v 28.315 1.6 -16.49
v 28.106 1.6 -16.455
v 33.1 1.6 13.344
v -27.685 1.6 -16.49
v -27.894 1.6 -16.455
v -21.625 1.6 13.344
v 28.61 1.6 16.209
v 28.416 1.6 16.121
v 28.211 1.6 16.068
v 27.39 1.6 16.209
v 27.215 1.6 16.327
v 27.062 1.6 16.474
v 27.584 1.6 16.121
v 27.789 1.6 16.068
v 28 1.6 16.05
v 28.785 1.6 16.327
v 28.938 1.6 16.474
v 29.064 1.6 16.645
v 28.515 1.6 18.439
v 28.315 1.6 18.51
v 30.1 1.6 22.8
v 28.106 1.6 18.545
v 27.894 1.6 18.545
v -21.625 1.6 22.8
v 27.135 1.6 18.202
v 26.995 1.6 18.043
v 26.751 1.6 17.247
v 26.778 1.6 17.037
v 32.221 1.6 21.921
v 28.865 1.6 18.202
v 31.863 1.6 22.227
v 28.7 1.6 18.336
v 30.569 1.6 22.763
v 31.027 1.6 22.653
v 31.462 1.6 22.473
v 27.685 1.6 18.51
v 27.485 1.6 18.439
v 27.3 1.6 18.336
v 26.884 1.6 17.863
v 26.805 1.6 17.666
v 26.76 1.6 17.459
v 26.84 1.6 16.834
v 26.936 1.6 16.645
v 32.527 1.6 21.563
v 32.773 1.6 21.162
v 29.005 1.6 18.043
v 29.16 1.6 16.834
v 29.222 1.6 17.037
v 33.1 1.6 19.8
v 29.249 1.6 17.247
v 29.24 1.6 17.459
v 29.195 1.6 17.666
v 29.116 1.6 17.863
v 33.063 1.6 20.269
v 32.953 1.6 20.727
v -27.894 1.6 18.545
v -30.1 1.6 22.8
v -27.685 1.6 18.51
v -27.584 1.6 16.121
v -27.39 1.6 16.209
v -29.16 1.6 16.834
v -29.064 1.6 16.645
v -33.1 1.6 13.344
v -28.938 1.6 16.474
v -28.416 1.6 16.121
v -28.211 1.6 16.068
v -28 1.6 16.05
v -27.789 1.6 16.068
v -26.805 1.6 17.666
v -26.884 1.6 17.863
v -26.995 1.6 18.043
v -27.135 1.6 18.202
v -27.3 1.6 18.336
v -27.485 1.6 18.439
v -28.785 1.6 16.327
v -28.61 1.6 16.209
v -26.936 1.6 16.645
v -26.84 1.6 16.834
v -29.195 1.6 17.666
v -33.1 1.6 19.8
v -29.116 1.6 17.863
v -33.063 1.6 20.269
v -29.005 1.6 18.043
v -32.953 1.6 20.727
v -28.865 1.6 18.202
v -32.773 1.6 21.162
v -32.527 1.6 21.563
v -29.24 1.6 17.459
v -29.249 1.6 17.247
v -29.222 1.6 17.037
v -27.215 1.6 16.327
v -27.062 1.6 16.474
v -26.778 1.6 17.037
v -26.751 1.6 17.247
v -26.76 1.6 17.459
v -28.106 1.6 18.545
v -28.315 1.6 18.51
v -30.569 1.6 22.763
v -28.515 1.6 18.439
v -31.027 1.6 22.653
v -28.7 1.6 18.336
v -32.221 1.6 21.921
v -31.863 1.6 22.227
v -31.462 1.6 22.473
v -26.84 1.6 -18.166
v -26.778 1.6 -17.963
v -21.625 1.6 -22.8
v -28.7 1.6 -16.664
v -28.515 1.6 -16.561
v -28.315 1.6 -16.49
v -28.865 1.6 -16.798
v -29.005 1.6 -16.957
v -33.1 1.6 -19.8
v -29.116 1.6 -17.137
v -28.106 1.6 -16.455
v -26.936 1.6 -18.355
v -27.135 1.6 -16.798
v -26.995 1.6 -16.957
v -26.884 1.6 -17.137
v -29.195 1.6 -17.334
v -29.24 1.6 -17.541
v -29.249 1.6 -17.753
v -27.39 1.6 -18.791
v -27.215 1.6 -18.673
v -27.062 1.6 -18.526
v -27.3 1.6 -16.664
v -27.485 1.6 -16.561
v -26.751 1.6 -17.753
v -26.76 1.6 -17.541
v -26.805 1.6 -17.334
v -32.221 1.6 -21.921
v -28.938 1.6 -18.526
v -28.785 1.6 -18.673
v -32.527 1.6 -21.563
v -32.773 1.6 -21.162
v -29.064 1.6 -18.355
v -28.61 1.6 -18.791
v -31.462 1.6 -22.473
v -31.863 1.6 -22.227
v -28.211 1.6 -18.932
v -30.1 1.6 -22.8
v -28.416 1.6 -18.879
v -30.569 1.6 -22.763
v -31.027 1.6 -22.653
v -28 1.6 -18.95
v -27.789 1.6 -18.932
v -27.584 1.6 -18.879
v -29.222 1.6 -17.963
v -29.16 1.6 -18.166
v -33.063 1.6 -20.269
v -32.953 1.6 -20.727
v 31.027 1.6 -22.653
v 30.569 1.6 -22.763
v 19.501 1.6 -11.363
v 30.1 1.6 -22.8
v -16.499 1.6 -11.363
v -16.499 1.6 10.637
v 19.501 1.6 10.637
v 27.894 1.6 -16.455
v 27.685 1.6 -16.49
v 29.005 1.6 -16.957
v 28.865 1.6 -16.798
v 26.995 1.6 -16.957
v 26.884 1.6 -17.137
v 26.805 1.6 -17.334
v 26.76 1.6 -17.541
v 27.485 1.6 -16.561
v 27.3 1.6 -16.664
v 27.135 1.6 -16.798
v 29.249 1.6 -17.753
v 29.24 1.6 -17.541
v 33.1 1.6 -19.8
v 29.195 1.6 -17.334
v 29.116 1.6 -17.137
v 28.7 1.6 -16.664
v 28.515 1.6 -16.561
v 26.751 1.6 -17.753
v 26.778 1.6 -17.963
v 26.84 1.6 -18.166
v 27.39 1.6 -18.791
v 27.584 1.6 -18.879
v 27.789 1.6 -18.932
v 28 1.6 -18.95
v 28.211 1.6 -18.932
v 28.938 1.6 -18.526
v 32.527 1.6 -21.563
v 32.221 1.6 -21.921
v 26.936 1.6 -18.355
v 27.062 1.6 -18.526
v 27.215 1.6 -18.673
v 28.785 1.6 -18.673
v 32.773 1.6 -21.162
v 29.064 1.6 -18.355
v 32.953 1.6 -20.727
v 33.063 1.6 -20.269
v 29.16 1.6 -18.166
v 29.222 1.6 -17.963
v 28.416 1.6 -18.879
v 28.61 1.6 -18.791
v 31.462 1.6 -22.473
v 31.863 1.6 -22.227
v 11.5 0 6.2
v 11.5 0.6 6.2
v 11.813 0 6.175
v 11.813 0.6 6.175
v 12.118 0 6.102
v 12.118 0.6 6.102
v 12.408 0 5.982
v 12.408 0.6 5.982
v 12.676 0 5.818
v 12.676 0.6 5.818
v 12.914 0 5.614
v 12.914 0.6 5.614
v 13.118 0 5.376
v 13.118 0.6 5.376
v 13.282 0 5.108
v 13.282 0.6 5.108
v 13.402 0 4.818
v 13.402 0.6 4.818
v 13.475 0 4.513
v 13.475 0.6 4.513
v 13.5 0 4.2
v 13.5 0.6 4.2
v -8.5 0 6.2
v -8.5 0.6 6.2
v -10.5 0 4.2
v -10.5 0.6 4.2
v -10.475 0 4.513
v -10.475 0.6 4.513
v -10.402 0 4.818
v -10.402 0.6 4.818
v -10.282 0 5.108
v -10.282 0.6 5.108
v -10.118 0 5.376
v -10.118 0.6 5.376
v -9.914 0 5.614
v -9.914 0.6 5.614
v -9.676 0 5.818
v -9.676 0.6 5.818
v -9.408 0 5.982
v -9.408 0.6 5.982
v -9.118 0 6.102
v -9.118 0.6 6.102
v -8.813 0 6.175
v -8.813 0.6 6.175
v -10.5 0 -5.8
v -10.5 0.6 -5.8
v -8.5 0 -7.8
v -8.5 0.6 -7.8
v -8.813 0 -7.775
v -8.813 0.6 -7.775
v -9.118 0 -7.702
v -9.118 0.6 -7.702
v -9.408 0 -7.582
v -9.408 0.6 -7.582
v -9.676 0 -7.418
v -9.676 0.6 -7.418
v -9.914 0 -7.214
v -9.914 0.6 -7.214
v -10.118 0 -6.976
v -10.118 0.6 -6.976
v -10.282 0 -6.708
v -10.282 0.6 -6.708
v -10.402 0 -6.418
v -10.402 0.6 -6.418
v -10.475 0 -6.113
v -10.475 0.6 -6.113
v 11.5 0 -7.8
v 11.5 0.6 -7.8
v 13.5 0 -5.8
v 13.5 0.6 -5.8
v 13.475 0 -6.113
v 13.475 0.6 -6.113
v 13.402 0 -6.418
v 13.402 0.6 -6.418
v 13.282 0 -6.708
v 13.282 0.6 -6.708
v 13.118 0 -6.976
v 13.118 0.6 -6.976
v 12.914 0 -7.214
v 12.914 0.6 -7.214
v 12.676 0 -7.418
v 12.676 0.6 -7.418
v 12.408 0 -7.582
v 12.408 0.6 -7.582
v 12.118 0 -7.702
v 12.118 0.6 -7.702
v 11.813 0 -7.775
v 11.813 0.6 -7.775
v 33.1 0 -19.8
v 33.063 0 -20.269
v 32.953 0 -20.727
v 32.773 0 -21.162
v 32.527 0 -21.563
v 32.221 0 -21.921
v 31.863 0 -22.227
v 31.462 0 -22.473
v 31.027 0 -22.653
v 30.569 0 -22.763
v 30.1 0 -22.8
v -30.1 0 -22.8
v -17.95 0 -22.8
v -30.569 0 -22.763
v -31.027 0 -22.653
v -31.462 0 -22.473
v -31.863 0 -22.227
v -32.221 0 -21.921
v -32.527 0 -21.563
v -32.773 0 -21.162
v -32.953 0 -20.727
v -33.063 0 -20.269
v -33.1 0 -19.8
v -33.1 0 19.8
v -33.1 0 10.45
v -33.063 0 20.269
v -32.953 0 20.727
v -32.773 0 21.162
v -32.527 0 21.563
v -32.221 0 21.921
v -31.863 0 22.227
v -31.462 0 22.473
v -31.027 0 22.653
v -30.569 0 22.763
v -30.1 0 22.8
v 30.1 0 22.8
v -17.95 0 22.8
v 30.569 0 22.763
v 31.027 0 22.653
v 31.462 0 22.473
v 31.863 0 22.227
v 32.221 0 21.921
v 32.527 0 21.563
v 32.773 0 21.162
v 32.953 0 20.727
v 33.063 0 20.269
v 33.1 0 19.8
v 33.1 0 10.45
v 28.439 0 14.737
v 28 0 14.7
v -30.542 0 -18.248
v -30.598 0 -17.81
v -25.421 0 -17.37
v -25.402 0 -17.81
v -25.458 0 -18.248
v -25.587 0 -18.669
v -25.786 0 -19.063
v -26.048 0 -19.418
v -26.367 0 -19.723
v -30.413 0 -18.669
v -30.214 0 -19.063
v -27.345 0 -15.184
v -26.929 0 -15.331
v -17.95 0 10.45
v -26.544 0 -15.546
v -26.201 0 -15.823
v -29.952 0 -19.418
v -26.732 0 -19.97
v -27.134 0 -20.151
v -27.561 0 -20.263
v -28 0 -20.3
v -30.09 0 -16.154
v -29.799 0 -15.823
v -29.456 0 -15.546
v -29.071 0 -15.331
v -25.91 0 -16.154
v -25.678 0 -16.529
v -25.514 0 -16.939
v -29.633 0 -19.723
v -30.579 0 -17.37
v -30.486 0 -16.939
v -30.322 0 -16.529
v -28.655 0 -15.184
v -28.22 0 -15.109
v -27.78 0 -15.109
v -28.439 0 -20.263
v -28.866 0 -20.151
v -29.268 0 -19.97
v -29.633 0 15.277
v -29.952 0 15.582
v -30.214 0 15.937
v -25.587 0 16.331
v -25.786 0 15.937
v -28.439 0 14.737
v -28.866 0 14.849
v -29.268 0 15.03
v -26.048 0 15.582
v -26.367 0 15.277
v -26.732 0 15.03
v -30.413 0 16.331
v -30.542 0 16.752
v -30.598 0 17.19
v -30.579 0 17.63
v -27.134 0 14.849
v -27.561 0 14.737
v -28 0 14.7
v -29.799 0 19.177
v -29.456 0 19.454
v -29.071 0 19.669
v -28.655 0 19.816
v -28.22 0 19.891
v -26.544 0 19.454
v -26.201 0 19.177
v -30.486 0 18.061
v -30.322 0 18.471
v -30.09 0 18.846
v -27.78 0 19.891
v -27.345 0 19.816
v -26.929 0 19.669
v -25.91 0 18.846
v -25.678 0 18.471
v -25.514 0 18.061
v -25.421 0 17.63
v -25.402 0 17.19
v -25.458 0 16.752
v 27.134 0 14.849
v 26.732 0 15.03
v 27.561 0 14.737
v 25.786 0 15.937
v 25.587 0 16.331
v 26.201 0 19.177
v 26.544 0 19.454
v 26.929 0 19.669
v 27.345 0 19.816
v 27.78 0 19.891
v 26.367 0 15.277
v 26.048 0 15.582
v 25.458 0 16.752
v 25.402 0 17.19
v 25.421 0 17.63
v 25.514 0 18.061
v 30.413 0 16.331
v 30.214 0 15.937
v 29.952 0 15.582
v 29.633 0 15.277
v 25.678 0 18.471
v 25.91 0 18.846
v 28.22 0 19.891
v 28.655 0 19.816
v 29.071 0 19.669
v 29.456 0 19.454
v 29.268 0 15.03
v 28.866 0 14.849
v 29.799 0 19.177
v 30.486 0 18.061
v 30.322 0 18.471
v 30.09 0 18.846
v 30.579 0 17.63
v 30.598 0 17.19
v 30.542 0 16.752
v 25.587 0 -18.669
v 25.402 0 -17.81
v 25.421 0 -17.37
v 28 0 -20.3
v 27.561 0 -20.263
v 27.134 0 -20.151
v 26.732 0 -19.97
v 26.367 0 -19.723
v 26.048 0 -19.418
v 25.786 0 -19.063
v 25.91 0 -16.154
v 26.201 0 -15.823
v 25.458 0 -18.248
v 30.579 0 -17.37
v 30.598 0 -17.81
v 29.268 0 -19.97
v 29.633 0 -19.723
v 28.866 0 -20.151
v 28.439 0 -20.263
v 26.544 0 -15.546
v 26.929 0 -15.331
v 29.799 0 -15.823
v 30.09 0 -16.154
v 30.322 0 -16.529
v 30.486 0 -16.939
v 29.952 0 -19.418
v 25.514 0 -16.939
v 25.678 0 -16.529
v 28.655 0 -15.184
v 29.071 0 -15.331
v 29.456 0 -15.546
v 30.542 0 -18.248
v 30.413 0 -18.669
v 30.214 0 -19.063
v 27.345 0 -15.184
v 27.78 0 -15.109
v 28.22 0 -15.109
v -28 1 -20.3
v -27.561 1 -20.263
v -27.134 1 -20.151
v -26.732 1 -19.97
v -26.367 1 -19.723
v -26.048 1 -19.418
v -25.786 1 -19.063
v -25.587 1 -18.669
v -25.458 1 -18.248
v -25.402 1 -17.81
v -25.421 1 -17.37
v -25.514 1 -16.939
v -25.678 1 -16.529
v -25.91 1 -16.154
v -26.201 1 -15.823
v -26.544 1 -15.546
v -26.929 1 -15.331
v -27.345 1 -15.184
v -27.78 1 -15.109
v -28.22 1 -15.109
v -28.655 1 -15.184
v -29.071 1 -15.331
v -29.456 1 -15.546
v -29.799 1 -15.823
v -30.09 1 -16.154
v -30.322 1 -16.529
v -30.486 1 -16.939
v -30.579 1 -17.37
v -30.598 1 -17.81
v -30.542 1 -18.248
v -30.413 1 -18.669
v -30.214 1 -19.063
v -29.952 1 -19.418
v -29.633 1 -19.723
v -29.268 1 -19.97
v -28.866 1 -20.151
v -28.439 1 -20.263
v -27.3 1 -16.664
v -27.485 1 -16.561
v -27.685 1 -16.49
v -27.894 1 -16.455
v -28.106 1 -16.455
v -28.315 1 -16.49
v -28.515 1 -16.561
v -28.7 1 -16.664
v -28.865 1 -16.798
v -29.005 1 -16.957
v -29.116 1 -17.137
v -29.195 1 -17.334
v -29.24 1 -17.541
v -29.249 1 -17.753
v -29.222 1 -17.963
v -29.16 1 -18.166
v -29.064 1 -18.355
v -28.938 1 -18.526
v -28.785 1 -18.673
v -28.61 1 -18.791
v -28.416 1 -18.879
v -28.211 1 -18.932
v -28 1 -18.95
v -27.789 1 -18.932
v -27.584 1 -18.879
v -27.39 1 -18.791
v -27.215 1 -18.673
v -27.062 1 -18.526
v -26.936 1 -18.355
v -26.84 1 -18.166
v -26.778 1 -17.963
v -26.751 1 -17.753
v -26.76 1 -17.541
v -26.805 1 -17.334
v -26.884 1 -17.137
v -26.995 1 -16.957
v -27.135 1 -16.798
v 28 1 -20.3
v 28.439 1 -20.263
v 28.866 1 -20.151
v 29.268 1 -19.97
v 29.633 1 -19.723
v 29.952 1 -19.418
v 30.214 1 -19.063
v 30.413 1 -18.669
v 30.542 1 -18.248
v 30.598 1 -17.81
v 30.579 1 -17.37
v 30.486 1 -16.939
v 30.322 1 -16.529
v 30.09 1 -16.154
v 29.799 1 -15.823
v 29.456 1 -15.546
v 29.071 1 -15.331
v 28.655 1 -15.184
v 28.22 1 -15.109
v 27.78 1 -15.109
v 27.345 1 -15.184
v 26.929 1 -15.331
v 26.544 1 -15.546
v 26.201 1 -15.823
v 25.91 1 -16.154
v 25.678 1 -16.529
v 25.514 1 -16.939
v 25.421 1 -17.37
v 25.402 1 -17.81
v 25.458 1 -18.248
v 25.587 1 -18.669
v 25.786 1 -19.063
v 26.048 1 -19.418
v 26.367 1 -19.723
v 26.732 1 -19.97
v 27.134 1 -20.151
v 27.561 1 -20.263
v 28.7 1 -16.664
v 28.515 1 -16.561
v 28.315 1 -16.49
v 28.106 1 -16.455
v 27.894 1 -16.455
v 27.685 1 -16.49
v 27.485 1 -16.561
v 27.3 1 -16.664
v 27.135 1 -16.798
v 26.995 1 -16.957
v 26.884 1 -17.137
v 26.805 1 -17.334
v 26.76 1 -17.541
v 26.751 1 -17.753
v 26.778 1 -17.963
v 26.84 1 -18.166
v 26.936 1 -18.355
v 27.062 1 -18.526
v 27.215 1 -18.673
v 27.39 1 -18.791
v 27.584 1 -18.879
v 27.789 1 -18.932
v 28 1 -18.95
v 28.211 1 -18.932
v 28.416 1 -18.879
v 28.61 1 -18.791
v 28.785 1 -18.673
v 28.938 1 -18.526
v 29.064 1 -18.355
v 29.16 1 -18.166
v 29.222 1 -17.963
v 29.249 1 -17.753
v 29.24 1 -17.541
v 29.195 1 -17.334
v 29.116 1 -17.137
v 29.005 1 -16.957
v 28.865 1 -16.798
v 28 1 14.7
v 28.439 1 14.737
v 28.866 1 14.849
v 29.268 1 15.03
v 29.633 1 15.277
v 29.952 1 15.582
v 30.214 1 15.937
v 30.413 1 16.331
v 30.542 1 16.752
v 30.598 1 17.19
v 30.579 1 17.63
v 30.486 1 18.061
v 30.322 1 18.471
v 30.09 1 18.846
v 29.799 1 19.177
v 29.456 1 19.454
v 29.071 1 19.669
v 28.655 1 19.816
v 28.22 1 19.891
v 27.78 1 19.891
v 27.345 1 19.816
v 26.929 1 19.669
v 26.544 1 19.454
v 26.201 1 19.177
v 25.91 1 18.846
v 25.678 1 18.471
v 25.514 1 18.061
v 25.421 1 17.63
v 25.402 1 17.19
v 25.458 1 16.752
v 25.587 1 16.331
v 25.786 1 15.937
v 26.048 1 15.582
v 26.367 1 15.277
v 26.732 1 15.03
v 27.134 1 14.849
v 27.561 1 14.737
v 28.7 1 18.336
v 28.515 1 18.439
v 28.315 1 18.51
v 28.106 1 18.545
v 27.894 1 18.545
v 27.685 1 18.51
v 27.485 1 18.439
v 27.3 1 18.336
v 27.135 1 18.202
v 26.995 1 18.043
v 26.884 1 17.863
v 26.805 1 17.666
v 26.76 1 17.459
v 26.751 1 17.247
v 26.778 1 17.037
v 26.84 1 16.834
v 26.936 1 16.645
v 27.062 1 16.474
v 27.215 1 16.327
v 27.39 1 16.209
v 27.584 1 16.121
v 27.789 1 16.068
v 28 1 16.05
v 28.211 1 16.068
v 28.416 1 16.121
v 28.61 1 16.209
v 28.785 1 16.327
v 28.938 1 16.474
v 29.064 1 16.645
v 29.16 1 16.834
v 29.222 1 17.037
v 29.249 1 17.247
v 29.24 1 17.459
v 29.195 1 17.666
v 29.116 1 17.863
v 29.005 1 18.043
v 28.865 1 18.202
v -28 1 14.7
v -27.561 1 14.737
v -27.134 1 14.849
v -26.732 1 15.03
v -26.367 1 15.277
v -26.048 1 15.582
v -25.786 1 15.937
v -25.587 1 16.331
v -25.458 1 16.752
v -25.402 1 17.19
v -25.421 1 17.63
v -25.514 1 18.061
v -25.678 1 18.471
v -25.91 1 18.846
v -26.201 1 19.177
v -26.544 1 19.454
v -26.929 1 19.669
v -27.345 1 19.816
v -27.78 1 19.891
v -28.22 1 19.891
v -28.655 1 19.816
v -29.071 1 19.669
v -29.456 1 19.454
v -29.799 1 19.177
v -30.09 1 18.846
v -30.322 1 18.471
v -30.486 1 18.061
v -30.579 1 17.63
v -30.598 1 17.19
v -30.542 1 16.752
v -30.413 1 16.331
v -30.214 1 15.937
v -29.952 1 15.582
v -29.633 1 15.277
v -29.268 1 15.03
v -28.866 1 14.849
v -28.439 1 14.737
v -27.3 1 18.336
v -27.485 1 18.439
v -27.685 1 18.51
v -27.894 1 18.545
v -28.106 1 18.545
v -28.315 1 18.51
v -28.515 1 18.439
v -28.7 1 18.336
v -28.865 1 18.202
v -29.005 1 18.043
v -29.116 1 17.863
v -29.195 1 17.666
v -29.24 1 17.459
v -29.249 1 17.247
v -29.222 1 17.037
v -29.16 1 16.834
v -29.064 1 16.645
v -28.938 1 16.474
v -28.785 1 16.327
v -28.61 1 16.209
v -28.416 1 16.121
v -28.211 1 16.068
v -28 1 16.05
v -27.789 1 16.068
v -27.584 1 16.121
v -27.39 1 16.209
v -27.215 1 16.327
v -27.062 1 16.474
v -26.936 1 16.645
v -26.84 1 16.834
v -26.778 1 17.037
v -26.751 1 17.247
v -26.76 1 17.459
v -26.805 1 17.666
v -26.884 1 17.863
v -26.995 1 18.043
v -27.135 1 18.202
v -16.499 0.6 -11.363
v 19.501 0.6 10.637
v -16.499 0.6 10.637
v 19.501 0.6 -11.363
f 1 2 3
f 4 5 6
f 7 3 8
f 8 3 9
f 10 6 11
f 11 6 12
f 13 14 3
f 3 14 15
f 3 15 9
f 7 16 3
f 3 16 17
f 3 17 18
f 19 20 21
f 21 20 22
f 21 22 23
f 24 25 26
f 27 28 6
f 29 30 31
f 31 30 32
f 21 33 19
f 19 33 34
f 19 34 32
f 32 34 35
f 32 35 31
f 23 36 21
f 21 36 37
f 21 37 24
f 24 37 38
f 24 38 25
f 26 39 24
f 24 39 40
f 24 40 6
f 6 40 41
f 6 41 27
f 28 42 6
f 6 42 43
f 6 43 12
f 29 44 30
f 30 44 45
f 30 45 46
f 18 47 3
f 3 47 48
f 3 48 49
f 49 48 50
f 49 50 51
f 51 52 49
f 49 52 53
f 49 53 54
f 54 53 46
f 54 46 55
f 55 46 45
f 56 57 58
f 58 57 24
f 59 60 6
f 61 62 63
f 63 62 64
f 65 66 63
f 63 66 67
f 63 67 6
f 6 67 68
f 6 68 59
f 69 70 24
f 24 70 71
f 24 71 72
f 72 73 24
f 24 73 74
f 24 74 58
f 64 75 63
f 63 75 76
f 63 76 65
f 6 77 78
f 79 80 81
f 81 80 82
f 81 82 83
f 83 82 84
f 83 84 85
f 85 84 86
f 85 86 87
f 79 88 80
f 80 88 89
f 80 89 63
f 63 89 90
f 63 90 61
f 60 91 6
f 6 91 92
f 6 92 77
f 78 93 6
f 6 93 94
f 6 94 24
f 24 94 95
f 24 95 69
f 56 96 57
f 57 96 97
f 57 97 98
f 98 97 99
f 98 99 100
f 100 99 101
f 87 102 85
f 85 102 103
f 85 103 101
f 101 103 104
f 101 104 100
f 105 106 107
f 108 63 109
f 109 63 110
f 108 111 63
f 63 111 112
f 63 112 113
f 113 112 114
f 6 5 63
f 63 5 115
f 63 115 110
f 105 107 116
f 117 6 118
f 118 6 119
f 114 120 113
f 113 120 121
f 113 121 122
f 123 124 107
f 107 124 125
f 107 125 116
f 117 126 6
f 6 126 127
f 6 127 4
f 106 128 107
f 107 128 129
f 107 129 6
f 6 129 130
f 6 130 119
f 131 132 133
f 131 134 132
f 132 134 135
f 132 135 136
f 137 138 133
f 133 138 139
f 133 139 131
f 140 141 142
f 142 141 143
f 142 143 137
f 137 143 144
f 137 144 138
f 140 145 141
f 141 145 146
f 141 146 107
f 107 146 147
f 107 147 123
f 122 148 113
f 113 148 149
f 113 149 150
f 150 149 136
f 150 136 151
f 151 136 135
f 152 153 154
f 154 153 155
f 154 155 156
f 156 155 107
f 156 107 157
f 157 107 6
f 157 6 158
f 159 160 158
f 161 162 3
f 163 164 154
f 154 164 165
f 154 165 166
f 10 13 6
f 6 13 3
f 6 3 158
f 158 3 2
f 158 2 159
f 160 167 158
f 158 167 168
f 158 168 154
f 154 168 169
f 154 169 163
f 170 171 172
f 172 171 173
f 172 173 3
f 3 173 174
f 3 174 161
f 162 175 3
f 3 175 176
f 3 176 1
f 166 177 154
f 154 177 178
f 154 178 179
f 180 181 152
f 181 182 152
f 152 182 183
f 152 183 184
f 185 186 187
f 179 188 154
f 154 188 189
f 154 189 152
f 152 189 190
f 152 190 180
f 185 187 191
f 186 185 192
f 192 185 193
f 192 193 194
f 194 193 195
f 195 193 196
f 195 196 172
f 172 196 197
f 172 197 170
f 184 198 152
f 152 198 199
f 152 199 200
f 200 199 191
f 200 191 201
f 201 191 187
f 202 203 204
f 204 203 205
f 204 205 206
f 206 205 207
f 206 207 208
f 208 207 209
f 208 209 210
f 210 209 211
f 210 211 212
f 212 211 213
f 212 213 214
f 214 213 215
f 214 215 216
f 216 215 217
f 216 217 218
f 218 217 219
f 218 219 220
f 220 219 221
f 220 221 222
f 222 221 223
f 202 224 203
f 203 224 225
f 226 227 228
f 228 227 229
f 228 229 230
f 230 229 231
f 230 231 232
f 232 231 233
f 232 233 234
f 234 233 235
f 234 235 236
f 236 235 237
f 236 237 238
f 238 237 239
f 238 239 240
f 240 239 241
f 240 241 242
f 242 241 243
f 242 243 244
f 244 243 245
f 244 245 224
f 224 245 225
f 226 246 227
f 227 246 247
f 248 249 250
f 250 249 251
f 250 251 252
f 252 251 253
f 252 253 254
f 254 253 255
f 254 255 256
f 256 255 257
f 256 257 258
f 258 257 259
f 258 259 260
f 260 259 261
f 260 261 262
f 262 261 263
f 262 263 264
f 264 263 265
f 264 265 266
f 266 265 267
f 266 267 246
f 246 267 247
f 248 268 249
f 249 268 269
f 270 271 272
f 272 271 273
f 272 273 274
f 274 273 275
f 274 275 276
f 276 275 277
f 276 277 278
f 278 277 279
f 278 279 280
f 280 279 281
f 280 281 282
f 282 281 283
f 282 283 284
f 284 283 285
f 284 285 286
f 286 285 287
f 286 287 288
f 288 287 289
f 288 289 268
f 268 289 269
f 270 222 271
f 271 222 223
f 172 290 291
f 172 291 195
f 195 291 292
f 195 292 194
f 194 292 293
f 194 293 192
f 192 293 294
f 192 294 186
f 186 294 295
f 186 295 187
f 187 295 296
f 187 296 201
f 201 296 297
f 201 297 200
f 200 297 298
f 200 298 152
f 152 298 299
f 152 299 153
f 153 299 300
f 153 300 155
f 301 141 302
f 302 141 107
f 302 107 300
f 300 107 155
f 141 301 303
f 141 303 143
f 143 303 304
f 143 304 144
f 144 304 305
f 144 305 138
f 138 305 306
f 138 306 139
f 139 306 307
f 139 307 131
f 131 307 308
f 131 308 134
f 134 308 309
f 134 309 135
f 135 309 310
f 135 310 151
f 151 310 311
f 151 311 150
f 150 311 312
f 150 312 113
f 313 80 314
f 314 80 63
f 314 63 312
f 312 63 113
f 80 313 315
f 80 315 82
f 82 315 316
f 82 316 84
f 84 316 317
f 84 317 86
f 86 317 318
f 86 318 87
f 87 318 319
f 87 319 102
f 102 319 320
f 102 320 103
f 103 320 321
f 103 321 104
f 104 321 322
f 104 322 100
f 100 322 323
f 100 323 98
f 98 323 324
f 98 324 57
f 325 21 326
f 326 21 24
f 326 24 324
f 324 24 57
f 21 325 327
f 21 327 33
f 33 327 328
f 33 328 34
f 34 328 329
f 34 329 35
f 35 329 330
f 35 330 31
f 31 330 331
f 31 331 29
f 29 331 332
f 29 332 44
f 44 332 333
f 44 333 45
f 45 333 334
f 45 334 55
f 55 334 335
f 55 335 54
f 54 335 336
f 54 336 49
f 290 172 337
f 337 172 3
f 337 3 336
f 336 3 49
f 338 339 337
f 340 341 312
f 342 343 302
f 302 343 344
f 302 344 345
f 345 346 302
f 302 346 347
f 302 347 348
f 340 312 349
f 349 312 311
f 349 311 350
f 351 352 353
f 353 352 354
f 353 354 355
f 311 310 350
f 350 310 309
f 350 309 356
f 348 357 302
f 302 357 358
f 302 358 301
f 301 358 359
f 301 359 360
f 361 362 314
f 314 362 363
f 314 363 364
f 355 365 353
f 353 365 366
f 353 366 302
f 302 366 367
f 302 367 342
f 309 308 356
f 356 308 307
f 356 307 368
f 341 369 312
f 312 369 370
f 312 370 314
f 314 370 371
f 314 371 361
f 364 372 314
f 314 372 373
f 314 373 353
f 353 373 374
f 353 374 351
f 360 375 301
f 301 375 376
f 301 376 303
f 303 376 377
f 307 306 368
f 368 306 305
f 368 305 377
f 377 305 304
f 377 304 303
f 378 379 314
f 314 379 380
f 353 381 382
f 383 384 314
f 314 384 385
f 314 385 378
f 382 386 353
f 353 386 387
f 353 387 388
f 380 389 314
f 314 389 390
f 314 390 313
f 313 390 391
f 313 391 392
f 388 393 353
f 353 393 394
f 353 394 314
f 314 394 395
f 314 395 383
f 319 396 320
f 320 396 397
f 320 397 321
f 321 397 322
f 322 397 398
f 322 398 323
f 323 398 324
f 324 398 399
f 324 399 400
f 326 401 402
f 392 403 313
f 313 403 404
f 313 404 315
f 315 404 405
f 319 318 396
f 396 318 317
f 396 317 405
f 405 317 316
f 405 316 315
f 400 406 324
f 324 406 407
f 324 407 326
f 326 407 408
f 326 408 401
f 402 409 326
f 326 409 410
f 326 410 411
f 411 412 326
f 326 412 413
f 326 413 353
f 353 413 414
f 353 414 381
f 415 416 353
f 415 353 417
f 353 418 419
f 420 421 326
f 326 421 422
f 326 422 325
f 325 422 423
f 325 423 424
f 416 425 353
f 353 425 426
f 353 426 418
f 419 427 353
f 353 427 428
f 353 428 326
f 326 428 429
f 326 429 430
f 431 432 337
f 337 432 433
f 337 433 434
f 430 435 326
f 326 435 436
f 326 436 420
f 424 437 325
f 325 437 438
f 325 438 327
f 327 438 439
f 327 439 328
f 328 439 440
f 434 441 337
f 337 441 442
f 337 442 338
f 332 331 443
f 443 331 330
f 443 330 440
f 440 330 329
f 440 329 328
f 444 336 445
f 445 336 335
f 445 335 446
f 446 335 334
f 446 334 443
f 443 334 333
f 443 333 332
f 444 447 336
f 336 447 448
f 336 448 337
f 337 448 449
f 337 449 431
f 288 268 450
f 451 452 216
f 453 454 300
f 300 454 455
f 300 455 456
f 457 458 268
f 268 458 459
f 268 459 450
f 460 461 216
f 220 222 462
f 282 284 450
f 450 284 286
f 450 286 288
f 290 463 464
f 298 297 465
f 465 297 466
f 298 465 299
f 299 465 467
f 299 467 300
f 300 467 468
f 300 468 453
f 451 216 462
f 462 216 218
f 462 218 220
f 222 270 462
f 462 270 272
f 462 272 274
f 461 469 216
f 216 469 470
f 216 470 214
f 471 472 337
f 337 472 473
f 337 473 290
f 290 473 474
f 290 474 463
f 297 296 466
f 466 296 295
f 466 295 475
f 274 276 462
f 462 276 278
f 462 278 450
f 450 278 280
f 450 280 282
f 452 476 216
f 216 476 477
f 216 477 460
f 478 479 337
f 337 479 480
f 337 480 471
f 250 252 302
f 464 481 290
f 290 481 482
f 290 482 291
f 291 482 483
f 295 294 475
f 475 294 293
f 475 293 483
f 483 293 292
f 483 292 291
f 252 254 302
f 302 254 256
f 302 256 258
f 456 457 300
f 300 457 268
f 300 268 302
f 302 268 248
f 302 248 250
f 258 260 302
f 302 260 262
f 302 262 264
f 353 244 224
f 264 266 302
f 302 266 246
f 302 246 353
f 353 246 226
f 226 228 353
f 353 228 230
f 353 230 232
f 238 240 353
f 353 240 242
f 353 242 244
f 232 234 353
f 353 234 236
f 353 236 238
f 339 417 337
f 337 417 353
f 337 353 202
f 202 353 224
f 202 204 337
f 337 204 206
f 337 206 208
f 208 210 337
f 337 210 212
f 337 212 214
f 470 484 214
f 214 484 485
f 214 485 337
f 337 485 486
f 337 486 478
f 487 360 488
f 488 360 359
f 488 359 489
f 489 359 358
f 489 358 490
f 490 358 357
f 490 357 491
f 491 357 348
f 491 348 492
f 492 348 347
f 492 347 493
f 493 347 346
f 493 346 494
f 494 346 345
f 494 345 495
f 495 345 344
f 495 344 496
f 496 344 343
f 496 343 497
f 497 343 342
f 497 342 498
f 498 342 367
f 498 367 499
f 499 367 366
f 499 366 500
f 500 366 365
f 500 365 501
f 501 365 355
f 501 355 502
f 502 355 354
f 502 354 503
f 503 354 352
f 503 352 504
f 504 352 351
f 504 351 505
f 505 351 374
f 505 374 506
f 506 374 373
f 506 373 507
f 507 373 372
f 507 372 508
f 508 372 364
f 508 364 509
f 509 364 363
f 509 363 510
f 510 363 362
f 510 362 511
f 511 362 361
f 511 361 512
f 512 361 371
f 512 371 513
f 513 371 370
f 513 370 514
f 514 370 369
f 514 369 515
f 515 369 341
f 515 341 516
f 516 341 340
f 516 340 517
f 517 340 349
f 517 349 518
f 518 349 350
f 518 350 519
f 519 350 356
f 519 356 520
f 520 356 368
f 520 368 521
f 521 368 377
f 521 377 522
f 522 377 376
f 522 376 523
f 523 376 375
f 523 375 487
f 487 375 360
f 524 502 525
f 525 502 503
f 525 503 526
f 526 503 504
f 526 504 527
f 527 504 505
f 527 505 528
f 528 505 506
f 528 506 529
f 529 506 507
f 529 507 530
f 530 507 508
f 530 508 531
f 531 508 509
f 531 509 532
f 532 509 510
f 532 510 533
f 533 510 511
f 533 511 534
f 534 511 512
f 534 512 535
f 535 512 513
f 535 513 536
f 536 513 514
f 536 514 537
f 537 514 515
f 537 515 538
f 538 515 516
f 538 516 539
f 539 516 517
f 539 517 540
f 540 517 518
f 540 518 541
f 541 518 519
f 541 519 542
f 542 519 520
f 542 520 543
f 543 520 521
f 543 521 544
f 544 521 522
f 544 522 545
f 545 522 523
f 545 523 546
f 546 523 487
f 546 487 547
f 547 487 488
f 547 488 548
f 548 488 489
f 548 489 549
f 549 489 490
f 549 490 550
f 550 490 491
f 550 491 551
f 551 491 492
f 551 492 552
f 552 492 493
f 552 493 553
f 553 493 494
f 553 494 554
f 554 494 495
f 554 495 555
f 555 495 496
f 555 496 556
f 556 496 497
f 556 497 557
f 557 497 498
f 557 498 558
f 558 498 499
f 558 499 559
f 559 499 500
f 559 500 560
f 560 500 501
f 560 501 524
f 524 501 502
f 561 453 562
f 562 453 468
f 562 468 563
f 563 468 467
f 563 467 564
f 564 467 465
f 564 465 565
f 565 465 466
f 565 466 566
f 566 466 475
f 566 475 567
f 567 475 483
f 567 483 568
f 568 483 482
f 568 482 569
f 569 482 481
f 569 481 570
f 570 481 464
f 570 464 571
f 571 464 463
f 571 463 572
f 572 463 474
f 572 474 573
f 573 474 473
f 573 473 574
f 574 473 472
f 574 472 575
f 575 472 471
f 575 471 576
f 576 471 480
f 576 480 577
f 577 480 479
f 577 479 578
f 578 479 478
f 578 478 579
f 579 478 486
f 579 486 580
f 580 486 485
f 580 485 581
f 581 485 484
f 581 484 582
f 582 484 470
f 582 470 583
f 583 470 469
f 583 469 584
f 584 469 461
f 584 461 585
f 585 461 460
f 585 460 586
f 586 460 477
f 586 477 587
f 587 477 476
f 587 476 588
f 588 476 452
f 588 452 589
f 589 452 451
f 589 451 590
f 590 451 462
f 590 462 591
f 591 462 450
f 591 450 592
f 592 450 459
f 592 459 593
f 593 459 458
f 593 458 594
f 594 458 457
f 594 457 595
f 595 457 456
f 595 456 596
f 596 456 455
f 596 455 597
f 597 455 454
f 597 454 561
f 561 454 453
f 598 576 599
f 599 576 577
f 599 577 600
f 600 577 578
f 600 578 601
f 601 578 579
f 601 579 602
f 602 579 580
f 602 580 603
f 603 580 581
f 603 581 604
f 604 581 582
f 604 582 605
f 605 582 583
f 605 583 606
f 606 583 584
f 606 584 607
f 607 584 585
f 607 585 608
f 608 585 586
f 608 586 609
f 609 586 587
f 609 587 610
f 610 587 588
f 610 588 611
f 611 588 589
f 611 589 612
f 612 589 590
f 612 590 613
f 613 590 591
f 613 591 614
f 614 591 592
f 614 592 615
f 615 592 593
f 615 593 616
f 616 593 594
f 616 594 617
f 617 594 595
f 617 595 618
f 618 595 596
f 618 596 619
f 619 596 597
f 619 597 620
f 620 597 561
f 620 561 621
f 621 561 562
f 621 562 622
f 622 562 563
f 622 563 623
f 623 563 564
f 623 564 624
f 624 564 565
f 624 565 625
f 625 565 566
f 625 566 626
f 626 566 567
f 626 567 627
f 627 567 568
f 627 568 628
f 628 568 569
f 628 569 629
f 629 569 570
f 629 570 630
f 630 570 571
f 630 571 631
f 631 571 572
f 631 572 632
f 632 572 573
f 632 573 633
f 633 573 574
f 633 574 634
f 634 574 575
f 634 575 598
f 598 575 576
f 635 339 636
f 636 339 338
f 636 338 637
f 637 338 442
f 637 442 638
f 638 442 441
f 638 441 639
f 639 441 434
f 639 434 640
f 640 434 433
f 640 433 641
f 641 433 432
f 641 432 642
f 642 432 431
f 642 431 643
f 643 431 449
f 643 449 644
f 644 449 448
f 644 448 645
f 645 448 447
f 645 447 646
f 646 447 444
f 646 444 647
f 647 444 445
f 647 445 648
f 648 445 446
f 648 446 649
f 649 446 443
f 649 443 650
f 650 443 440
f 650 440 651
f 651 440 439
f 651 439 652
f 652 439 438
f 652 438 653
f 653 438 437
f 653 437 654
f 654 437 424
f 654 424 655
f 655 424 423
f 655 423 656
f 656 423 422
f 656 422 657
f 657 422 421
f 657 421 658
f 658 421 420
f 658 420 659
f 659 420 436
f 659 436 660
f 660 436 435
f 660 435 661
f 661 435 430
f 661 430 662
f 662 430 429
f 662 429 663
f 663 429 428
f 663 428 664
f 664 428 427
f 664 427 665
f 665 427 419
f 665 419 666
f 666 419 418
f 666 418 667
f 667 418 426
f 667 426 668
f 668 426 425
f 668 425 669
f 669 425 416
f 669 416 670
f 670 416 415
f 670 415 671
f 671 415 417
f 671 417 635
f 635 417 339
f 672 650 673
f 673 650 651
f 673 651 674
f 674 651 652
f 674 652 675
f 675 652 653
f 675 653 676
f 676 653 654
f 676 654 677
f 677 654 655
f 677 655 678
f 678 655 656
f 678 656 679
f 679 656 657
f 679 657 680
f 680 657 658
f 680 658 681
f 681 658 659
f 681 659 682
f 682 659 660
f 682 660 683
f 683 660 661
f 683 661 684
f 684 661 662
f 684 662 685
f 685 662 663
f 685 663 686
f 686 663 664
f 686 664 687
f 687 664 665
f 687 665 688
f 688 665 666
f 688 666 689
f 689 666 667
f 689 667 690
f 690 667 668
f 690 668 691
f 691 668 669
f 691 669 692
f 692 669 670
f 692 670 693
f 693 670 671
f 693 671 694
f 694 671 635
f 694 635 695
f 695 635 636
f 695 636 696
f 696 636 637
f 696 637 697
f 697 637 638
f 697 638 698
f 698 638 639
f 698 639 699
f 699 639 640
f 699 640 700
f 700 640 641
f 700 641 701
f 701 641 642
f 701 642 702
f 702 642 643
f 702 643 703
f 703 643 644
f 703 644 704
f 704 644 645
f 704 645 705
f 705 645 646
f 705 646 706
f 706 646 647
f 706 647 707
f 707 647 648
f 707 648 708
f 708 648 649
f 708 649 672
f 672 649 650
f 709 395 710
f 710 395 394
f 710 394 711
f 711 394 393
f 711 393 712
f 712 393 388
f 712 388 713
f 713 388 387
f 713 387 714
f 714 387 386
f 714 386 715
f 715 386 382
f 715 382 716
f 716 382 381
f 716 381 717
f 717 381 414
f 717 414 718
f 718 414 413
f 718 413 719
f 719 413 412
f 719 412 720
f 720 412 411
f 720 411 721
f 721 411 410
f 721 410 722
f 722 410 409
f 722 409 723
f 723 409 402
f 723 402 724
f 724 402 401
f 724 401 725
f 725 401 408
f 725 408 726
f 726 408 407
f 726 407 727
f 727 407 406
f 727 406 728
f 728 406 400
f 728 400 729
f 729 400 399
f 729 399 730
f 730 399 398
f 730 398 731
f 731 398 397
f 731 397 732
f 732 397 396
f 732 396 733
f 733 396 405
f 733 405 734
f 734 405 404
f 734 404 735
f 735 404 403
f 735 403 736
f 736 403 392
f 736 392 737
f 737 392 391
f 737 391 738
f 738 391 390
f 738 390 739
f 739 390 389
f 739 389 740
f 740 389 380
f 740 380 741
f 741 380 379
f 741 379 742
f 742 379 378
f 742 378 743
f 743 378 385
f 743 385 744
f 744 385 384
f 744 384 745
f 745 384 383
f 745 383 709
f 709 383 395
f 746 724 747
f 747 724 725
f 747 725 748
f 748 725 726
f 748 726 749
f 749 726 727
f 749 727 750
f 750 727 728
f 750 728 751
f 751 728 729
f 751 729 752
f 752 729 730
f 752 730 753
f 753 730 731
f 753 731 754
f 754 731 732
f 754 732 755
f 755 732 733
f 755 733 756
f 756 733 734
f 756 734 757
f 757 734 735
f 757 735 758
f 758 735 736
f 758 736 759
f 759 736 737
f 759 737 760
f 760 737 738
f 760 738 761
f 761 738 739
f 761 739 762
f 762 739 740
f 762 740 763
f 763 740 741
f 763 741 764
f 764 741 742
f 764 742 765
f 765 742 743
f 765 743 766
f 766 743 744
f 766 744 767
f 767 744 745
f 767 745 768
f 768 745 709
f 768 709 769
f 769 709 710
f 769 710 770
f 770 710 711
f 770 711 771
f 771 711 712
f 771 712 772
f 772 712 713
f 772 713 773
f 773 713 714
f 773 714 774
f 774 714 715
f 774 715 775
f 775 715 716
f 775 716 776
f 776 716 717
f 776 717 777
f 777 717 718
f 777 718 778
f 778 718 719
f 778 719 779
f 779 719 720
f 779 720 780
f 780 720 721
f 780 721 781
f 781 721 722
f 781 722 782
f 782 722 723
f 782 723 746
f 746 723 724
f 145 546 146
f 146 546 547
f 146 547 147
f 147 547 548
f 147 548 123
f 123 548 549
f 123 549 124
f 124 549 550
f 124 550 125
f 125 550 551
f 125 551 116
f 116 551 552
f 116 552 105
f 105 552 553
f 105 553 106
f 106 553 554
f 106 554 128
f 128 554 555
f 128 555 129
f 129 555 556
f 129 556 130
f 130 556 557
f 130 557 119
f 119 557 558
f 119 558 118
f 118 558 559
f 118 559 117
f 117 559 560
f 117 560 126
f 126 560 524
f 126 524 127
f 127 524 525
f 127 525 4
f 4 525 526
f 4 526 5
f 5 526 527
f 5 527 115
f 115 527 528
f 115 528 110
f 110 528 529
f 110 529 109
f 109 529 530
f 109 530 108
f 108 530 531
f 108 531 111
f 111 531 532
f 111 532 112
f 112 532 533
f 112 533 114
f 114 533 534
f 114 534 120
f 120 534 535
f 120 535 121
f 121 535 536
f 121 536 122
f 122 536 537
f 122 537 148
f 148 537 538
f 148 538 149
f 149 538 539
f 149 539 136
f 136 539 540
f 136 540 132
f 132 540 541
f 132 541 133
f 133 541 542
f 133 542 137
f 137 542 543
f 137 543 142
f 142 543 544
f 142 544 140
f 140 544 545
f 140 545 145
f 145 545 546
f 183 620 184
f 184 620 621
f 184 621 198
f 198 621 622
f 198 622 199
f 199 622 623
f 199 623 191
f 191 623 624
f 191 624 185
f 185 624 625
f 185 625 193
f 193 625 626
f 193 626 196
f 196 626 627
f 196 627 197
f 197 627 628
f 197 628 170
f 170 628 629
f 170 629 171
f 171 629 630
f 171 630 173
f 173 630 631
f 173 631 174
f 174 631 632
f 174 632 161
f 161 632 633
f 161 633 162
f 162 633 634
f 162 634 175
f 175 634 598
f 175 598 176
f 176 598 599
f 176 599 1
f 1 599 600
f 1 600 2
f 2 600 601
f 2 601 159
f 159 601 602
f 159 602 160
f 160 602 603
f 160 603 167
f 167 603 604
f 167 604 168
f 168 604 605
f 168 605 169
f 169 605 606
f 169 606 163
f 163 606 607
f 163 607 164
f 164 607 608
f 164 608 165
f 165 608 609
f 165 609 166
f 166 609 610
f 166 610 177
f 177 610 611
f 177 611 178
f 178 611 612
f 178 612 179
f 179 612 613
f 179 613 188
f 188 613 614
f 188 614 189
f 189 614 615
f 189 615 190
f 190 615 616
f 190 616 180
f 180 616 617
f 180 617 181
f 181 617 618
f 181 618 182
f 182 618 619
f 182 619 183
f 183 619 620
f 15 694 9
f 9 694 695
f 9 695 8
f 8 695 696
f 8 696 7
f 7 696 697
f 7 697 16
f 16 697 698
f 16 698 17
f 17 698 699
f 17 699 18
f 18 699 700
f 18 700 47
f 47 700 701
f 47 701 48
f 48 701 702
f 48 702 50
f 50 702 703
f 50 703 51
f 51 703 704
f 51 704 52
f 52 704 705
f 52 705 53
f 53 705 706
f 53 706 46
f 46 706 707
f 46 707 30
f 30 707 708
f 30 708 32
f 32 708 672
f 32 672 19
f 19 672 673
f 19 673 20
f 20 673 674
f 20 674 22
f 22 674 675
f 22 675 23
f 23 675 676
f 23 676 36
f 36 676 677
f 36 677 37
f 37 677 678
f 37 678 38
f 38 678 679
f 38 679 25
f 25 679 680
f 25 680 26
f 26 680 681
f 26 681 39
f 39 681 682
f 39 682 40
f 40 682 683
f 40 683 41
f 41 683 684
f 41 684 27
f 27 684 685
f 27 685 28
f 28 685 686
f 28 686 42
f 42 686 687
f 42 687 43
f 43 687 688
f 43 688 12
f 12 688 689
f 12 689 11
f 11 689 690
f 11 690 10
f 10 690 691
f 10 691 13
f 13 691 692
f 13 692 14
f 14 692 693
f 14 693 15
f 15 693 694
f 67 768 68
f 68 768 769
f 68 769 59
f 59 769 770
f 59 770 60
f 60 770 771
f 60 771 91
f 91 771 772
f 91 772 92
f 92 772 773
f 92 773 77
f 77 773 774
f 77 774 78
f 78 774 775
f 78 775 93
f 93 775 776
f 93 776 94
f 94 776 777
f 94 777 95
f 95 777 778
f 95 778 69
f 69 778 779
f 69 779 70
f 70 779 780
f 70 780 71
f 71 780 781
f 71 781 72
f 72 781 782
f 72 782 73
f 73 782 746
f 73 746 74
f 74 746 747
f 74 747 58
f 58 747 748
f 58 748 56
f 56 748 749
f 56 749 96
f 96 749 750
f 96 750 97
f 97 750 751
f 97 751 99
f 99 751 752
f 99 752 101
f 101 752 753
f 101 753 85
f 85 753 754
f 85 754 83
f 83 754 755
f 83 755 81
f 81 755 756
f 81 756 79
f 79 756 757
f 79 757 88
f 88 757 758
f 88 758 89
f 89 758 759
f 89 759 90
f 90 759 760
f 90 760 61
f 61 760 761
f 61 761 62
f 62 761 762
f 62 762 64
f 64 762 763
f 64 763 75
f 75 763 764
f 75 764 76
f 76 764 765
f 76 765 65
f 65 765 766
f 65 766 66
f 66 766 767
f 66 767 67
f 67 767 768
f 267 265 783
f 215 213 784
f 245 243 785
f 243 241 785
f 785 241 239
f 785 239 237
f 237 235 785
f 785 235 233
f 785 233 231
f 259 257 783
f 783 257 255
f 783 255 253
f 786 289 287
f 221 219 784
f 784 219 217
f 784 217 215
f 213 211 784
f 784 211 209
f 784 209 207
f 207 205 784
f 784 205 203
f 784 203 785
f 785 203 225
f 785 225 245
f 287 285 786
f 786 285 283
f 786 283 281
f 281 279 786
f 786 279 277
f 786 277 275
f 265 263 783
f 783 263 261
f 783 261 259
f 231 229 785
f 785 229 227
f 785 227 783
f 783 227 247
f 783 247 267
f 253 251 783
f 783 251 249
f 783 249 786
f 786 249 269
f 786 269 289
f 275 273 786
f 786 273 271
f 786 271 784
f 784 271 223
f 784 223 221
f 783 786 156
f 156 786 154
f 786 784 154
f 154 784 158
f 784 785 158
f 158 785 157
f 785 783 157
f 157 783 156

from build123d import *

# Parameters (mm, degrees)
EXTRUDE_1_DEPTH        = 1.6
CUT_EXTRUDE_827_REACH  = 42.224
SKETCH_5_R             = 2.6
CUT_EXTRUDE_1317_DEPTH = 1
CUT_EXTRUDE_1453_REACH = 42.205
SKETCH_7_R             = 1.25
SKETCH_9_W             = 36
SKETCH_9_H             = 22
CUT_EXTRUDE_2013_DEPTH = 1


with BuildPart() as part:
    # 草图1 → 凸台-拉伸1 (new body)
    with BuildSketch(Plane(origin=(0, 0, 0), x_dir=(1, 0, 0), z_dir=(0, 1, 0))):
        with BuildLine():
            Line((-30.1, -22.8), (30.1, -22.8))
            ThreePointArc((30.1, -22.8), (32.221320344, -21.921320344), (33.1, -19.8))
            Line((33.1, -19.8), (33.1, 19.8))
            ThreePointArc((33.1, 19.8), (32.221320344, 21.921320344), (30.1, 22.8))
            Line((30.1, 22.8), (-30.1, 22.8))
            ThreePointArc((-30.1, 22.8), (-32.221320344, 21.921320344), (-33.1, 19.8))
            Line((-33.1, 19.8), (-33.1, -19.8))
            ThreePointArc((-33.1, -19.8), (-32.221320344, -21.921320344), (-30.1, -22.8))
        make_face()
    extrude(amount=EXTRUDE_1_DEPTH)

    # 草图3 → Cut-Extrude 827 (cut, up to next)
    with BuildSketch(Plane(origin=(0, 1.6, 0), x_dir=(1, 0, 0), z_dir=(0, 1, 0)), mode=Mode.PRIVATE) as cut_extrude_827_sk1:
        with BuildLine():
            Line((-8.5, -6.2), (11.5, -6.2))
            ThreePointArc((11.5, -6.2), (12.914213562, -5.614213562), (13.5, -4.2))
            Line((13.5, -4.2), (13.5, 5.8))
            ThreePointArc((13.5, 5.8), (12.914213562, 7.214213562), (11.5, 7.8))
            Line((11.5, 7.8), (-8.5, 7.8))
            ThreePointArc((-8.5, 7.8), (-9.914213562, 7.214213562), (-10.5, 5.8))
            Line((-10.5, 5.8), (-10.5, -4.2))
            ThreePointArc((-10.5, -4.2), (-9.914213562, -5.614213562), (-8.5, -6.2))
        make_face()
    cut_extrude_827_tool1 = extrude(cut_extrude_827_sk1.sketch, amount=-CUT_EXTRUDE_827_REACH, mode=Mode.PRIVATE) & part.part
    add(cut_extrude_827_tool1.solids().sort_by_distance((1.5, 1.6, -0.8))[0], mode=Mode.SUBTRACT)

    # 草图5 → Cut-Extrude 1317 (cut)
    with BuildSketch(Plane.XZ):
        with Locations(Location((-28, -17.7, 0), (0, 0, 270))):
            Circle(SKETCH_5_R)
        with Locations(Location((28, -17.7, 0), (0, 0, 270))):
            Circle(SKETCH_5_R)
        with Locations(Location((28, 17.3, 0), (0, 0, 270))):
            Circle(SKETCH_5_R)
        with Locations(Location((-28, 17.3, 0), (0, 0, 270))):
            Circle(SKETCH_5_R)
    extrude(amount=-CUT_EXTRUDE_1317_DEPTH, mode=Mode.SUBTRACT)

    # 草图7 → Cut-Extrude 1453 (cut, up to next)
    with BuildSketch(Plane.XZ.offset(-1), mode=Mode.PRIVATE) as cut_extrude_1453_sk1:
        with Locations(Location((-28, -17.7, 0), (0, 0, 270))):
            Circle(SKETCH_7_R)
    cut_extrude_1453_tool1 = extrude(cut_extrude_1453_sk1.sketch, amount=-CUT_EXTRUDE_1453_REACH, mode=Mode.PRIVATE) & part.part
    # 草图7 → Cut-Extrude 1453 (cut, up to next)
    with BuildSketch(Plane.XZ.offset(-1), mode=Mode.PRIVATE) as cut_extrude_1453_sk2:
        with Locations(Location((28, -17.7, 0), (0, 0, 270))):
            Circle(SKETCH_7_R)
    cut_extrude_1453_tool2 = extrude(cut_extrude_1453_sk2.sketch, amount=-CUT_EXTRUDE_1453_REACH, mode=Mode.PRIVATE) & part.part
    # 草图7 → Cut-Extrude 1453 (cut, up to next)
    with BuildSketch(Plane.XZ.offset(-1), mode=Mode.PRIVATE) as cut_extrude_1453_sk3:
        with Locations(Location((28, 17.3, 0), (0, 0, 270))):
            Circle(SKETCH_7_R)
    cut_extrude_1453_tool3 = extrude(cut_extrude_1453_sk3.sketch, amount=-CUT_EXTRUDE_1453_REACH, mode=Mode.PRIVATE) & part.part
    # 草图7 → Cut-Extrude 1453 (cut, up to next)
    with BuildSketch(Plane.XZ.offset(-1), mode=Mode.PRIVATE) as cut_extrude_1453_sk4:
        with Locations(Location((-28, 17.3, 0), (0, 0, 270))):
            Circle(SKETCH_7_R)
    cut_extrude_1453_tool4 = extrude(cut_extrude_1453_sk4.sketch, amount=-CUT_EXTRUDE_1453_REACH, mode=Mode.PRIVATE) & part.part
    add(cut_extrude_1453_tool1.solids().sort_by_distance((-28, 1, -17.7))[0], mode=Mode.SUBTRACT)
    add(cut_extrude_1453_tool2.solids().sort_by_distance((28, 1, -17.7))[0], mode=Mode.SUBTRACT)
    add(cut_extrude_1453_tool3.solids().sort_by_distance((28, 1, 17.3))[0], mode=Mode.SUBTRACT)
    add(cut_extrude_1453_tool4.solids().sort_by_distance((-28, 1, 17.3))[0], mode=Mode.SUBTRACT)

    # 草图9 → Cut-Extrude 2013 (cut)
    with BuildSketch(Plane(origin=(0, 1.6, 0), x_dir=(1, 0, 0), z_dir=(0, 1, 0))):
        with Locations((1.500900608, 0.362797629)):
            Rectangle(SKETCH_9_W, SKETCH_9_H)
    extrude(amount=-CUT_EXTRUDE_2013_DEPTH, mode=Mode.SUBTRACT)


solid = part.part
